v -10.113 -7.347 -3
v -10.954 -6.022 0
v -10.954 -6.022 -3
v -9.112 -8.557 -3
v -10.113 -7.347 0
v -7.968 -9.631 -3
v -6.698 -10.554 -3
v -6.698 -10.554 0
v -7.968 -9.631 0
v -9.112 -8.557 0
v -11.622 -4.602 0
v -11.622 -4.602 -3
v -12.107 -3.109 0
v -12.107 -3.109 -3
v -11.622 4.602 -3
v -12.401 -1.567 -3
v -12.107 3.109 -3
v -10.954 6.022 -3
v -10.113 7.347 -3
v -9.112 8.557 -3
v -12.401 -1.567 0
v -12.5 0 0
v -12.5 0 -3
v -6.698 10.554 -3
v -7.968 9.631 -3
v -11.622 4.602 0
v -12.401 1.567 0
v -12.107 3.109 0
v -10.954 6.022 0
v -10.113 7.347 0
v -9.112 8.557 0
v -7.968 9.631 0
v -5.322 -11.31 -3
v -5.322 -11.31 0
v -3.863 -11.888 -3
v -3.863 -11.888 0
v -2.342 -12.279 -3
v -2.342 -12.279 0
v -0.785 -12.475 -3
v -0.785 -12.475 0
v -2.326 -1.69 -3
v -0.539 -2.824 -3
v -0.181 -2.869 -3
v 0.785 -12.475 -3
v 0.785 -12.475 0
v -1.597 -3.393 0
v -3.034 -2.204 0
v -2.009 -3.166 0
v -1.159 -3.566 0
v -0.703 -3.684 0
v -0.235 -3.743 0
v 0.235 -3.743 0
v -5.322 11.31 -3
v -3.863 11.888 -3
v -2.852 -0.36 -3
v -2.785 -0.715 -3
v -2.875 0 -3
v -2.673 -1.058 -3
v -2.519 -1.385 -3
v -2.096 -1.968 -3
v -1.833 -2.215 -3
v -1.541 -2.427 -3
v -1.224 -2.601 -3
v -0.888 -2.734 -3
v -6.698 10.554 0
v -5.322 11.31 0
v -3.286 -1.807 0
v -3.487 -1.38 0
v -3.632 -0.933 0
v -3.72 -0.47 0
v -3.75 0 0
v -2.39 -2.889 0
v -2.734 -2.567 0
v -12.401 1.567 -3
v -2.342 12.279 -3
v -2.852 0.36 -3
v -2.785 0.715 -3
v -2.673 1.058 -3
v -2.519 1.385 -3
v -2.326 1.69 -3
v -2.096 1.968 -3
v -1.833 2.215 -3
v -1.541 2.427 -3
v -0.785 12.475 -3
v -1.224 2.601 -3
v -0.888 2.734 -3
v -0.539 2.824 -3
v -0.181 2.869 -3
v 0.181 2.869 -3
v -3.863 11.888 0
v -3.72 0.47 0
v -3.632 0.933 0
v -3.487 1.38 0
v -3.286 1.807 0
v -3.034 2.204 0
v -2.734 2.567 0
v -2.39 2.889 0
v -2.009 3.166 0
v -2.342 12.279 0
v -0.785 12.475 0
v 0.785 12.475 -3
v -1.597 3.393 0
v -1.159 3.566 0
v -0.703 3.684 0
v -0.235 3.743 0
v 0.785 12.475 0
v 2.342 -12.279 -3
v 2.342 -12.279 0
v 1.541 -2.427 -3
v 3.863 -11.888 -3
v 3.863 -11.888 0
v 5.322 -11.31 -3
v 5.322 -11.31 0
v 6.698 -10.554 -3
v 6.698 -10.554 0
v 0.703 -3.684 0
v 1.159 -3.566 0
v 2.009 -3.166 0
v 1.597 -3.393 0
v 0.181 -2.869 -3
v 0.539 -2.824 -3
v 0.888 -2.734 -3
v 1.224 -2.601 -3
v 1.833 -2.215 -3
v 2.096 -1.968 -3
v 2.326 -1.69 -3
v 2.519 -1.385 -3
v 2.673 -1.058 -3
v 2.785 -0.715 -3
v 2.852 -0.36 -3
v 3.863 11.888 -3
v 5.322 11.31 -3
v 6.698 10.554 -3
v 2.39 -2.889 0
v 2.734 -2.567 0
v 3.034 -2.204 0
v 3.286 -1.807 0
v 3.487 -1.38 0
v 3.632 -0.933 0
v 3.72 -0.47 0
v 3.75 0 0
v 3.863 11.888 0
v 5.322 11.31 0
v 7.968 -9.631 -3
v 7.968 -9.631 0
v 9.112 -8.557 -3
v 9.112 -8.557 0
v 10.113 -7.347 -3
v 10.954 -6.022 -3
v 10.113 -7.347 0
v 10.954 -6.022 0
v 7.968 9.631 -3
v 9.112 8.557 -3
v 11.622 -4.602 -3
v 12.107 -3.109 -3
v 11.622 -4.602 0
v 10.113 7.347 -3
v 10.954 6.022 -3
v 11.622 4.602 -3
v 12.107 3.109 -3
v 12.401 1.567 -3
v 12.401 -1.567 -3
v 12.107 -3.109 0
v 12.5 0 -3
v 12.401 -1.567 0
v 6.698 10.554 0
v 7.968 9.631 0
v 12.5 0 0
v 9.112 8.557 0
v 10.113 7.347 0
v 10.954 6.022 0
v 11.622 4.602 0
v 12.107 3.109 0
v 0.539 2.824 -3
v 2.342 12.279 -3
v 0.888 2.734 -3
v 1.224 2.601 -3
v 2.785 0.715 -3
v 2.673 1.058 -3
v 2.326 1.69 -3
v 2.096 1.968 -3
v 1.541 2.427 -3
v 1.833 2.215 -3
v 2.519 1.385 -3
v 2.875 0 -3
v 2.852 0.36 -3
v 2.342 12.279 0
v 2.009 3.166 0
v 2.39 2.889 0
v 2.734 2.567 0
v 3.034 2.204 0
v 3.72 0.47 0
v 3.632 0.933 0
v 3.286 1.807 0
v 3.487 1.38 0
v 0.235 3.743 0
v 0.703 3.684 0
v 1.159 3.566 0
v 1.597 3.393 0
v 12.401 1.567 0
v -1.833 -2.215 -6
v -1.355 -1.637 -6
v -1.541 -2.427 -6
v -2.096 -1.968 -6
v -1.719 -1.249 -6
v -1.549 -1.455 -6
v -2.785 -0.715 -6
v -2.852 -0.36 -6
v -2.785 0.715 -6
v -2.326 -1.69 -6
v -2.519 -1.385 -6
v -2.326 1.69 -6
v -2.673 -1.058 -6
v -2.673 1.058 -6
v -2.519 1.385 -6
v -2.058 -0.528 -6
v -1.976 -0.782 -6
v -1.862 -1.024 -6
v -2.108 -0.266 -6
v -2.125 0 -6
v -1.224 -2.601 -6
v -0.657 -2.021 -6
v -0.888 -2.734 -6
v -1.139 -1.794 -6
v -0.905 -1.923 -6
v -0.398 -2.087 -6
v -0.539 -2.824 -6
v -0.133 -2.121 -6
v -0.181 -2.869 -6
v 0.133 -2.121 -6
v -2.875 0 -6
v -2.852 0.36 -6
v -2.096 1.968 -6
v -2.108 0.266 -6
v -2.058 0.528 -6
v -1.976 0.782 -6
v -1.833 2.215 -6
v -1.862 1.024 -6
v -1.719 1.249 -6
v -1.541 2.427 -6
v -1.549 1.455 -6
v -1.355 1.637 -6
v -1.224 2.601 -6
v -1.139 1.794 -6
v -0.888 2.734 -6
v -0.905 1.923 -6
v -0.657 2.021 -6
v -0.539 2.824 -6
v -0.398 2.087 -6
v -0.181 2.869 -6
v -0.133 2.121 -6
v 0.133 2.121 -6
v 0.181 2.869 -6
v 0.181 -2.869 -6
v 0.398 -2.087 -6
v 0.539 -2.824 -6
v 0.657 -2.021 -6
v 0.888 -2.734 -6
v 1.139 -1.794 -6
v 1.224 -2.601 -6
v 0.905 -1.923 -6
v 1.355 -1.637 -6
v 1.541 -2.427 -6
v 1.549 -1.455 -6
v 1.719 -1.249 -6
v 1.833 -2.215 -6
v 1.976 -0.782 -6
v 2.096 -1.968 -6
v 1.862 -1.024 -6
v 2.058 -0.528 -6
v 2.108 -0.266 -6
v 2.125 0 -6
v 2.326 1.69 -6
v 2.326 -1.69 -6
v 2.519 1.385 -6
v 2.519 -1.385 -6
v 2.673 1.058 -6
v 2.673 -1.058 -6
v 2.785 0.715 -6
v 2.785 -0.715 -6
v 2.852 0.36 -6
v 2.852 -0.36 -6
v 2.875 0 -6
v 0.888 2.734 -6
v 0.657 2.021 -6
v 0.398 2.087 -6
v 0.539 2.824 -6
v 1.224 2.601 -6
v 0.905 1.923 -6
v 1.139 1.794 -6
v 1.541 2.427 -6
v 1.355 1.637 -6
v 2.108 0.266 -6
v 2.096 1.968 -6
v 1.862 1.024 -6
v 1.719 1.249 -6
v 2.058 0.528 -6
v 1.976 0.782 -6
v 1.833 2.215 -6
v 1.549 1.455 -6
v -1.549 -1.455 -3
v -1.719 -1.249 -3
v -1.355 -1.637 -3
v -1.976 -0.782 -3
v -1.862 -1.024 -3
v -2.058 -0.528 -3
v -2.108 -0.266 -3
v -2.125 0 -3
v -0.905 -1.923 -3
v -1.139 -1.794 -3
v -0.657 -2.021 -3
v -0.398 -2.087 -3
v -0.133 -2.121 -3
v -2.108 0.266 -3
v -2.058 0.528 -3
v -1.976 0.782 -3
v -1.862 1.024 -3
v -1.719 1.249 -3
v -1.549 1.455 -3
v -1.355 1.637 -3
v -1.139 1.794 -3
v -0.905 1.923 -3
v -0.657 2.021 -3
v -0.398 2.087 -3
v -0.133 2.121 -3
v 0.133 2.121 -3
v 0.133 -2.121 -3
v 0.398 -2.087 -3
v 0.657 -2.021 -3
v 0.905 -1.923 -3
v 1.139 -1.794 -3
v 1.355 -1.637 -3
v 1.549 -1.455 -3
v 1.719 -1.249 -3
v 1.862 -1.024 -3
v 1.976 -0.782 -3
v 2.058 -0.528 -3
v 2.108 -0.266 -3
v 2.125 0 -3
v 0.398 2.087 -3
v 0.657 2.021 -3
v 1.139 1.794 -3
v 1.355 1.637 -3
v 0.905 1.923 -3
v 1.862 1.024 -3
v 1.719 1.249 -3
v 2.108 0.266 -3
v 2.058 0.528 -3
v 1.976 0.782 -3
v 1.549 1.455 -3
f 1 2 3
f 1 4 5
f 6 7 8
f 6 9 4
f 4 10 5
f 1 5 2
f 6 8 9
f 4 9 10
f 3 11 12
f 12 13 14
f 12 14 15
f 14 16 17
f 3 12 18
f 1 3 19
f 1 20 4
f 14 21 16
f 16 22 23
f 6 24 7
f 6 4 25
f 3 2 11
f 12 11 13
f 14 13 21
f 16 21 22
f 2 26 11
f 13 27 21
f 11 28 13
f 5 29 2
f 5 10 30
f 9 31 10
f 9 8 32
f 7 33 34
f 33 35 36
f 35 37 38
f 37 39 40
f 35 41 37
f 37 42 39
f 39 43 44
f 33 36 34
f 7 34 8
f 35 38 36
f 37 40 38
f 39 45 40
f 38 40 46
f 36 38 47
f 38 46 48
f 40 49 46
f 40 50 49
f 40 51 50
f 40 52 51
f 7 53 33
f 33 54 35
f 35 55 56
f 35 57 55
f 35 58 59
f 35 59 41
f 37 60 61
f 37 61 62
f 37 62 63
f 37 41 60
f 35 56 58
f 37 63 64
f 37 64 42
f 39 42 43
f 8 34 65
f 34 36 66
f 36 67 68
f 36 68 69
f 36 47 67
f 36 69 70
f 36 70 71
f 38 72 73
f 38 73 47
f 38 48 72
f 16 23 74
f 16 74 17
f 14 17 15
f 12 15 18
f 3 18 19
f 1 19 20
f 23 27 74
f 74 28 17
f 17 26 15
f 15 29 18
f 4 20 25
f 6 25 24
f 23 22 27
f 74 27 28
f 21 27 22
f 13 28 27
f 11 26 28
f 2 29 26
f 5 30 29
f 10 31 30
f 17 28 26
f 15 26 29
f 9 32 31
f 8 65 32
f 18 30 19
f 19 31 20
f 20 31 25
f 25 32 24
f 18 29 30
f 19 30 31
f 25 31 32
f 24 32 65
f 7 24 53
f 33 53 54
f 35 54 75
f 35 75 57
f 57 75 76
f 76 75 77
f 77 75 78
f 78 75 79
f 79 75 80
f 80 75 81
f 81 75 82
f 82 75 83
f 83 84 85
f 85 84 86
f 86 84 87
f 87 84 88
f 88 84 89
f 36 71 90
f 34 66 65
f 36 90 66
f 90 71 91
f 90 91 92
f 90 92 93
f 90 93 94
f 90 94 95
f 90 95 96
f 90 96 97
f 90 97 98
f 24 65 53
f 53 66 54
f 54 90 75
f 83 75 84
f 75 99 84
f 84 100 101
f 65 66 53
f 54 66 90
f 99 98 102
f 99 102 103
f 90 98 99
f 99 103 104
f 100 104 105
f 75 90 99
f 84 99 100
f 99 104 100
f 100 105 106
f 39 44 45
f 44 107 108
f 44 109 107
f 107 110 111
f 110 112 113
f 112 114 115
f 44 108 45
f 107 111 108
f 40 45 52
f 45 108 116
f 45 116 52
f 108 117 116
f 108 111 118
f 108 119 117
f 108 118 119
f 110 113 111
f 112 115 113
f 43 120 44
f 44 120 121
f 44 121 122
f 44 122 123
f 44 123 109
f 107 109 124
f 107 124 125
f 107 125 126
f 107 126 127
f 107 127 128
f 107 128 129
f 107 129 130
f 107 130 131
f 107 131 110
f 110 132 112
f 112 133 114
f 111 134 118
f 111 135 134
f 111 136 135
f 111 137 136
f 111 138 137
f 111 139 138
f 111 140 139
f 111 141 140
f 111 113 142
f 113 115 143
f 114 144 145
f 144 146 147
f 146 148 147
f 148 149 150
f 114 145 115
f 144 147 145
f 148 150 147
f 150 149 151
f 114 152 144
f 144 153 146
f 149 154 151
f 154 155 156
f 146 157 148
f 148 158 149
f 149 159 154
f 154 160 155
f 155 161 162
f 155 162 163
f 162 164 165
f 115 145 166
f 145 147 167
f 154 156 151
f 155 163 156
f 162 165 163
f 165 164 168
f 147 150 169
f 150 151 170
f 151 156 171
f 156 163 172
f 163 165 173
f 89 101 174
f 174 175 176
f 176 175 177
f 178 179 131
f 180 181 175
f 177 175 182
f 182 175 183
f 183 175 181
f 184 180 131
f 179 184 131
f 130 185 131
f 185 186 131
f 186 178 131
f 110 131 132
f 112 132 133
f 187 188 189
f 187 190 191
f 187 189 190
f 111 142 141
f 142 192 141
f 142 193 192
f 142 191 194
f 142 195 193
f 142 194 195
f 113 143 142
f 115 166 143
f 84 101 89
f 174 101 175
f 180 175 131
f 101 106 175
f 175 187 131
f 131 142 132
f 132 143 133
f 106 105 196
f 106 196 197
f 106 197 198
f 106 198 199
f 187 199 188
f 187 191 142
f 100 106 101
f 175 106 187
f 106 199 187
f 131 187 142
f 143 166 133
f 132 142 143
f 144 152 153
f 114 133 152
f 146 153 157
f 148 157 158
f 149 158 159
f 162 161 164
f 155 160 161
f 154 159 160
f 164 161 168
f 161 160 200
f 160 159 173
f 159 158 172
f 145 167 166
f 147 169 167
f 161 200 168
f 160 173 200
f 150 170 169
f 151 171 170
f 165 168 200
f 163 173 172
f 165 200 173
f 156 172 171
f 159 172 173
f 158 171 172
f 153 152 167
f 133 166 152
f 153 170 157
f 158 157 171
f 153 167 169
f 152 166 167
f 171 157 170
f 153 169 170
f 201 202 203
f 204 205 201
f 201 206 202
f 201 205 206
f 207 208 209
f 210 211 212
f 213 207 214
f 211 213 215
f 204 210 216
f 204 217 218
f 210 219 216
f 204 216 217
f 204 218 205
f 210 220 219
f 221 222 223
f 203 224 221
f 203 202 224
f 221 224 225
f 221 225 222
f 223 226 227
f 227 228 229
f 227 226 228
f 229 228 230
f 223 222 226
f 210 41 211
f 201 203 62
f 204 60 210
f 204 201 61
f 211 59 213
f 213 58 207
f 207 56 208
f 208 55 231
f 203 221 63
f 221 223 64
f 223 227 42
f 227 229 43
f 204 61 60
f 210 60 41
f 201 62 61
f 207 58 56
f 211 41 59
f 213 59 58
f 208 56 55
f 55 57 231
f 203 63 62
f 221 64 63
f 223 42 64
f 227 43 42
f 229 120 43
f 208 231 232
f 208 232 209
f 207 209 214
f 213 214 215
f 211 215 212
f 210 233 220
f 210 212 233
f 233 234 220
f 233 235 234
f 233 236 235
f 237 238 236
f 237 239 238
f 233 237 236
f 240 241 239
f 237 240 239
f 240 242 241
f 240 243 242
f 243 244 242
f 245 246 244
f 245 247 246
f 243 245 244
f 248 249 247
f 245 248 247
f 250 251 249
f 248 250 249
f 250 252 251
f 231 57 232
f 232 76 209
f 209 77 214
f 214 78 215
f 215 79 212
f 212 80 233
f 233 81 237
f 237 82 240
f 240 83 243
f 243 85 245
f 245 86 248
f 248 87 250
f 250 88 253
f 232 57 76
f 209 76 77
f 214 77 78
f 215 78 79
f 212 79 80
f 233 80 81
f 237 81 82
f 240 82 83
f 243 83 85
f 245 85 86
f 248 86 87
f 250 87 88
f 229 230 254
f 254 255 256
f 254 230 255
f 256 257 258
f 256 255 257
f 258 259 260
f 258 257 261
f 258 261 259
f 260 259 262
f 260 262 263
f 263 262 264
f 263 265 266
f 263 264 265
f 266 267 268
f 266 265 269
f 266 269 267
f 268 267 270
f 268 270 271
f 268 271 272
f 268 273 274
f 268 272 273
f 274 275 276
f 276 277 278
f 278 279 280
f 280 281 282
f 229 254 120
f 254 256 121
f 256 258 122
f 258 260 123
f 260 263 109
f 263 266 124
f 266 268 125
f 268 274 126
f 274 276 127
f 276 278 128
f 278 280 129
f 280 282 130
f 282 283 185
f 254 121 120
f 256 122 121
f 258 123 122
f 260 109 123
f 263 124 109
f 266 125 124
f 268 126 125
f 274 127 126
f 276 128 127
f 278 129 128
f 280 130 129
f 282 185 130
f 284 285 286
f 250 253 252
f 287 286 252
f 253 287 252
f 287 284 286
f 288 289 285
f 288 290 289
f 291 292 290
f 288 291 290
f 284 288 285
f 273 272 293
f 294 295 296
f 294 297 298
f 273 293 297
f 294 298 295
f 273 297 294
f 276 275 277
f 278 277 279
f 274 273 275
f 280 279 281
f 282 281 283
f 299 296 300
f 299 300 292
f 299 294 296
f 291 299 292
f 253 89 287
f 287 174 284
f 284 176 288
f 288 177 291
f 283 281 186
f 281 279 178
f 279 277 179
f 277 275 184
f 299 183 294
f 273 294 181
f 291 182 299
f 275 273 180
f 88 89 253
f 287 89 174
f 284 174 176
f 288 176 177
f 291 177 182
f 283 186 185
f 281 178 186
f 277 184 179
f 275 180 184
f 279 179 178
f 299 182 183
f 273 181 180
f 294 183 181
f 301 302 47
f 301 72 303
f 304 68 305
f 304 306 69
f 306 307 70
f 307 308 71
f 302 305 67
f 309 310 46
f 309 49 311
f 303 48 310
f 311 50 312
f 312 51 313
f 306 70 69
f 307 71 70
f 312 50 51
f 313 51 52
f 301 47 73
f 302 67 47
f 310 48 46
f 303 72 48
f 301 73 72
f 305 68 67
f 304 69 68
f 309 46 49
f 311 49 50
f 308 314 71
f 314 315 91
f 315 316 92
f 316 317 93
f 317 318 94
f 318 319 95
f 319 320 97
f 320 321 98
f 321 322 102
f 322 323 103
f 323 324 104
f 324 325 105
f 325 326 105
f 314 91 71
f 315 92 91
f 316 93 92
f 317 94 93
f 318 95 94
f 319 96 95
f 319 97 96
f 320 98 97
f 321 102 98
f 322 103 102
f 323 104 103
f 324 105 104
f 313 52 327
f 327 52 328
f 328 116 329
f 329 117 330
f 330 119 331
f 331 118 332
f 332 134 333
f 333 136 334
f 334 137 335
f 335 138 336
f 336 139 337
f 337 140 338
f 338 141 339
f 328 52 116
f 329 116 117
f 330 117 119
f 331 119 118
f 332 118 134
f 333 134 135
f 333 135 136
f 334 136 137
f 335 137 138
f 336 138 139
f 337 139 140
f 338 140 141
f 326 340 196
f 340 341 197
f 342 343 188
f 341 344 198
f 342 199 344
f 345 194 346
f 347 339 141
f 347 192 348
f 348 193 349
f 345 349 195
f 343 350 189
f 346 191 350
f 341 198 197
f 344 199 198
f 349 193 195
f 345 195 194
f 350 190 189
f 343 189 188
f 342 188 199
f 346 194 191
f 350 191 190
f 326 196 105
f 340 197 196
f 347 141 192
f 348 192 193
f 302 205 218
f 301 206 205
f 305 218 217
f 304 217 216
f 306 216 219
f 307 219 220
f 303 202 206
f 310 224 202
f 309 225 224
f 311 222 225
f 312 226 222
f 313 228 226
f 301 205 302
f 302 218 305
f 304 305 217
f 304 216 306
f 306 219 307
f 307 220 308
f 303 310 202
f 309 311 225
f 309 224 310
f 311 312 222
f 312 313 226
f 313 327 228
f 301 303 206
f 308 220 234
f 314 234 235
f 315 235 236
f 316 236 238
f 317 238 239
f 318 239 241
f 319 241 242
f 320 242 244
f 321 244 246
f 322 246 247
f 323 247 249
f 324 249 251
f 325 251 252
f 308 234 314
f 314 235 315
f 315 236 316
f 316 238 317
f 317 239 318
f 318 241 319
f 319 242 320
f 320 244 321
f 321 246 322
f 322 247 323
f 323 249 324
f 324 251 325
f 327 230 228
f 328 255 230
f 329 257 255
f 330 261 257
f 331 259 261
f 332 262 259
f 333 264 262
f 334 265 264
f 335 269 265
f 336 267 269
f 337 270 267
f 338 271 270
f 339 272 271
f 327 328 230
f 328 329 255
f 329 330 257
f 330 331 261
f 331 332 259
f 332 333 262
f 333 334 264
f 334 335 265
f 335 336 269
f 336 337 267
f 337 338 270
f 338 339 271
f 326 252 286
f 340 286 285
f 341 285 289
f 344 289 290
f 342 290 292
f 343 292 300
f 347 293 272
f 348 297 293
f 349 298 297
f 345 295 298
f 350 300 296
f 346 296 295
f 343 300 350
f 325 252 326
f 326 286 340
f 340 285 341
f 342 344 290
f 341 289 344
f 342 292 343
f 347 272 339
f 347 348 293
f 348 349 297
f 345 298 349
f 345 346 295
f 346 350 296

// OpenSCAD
$fn = 50;


difference() {
	union() {
		translate(v = [0, 0, -3.0000000000]) {
			cylinder(h = 3, r = 12.5000000000);
		}
		#translate(v = [0, 0, -6.0000000000]) {
			cylinder(h = 6, r = 2.8750000000);
		}
	}
	union() {
		translate(v = [0, 0, 0]) {
			rotate(a = [0, 0, 0]) {
				difference() {
					union() {
						translate(v = [0, 0, -6.0000000000]) {
							cylinder(h = 6, r = 2.0000000000);
						}
						translate(v = [0, 0, -3]) {
							cylinder(h = 3, r1 = 2.1250000000, r2 = 3.7500000000);
						}
						translate(v = [0, 0, -6.0000000000]) {
							cylinder(h = 6, r = 2.1250000000);
						}
						translate(v = [0, 0, -6.0000000000]) {
							cylinder(h = 6, r = 2.0000000000);
						}
					}
					union();
				}
			}
		}
	}
}
